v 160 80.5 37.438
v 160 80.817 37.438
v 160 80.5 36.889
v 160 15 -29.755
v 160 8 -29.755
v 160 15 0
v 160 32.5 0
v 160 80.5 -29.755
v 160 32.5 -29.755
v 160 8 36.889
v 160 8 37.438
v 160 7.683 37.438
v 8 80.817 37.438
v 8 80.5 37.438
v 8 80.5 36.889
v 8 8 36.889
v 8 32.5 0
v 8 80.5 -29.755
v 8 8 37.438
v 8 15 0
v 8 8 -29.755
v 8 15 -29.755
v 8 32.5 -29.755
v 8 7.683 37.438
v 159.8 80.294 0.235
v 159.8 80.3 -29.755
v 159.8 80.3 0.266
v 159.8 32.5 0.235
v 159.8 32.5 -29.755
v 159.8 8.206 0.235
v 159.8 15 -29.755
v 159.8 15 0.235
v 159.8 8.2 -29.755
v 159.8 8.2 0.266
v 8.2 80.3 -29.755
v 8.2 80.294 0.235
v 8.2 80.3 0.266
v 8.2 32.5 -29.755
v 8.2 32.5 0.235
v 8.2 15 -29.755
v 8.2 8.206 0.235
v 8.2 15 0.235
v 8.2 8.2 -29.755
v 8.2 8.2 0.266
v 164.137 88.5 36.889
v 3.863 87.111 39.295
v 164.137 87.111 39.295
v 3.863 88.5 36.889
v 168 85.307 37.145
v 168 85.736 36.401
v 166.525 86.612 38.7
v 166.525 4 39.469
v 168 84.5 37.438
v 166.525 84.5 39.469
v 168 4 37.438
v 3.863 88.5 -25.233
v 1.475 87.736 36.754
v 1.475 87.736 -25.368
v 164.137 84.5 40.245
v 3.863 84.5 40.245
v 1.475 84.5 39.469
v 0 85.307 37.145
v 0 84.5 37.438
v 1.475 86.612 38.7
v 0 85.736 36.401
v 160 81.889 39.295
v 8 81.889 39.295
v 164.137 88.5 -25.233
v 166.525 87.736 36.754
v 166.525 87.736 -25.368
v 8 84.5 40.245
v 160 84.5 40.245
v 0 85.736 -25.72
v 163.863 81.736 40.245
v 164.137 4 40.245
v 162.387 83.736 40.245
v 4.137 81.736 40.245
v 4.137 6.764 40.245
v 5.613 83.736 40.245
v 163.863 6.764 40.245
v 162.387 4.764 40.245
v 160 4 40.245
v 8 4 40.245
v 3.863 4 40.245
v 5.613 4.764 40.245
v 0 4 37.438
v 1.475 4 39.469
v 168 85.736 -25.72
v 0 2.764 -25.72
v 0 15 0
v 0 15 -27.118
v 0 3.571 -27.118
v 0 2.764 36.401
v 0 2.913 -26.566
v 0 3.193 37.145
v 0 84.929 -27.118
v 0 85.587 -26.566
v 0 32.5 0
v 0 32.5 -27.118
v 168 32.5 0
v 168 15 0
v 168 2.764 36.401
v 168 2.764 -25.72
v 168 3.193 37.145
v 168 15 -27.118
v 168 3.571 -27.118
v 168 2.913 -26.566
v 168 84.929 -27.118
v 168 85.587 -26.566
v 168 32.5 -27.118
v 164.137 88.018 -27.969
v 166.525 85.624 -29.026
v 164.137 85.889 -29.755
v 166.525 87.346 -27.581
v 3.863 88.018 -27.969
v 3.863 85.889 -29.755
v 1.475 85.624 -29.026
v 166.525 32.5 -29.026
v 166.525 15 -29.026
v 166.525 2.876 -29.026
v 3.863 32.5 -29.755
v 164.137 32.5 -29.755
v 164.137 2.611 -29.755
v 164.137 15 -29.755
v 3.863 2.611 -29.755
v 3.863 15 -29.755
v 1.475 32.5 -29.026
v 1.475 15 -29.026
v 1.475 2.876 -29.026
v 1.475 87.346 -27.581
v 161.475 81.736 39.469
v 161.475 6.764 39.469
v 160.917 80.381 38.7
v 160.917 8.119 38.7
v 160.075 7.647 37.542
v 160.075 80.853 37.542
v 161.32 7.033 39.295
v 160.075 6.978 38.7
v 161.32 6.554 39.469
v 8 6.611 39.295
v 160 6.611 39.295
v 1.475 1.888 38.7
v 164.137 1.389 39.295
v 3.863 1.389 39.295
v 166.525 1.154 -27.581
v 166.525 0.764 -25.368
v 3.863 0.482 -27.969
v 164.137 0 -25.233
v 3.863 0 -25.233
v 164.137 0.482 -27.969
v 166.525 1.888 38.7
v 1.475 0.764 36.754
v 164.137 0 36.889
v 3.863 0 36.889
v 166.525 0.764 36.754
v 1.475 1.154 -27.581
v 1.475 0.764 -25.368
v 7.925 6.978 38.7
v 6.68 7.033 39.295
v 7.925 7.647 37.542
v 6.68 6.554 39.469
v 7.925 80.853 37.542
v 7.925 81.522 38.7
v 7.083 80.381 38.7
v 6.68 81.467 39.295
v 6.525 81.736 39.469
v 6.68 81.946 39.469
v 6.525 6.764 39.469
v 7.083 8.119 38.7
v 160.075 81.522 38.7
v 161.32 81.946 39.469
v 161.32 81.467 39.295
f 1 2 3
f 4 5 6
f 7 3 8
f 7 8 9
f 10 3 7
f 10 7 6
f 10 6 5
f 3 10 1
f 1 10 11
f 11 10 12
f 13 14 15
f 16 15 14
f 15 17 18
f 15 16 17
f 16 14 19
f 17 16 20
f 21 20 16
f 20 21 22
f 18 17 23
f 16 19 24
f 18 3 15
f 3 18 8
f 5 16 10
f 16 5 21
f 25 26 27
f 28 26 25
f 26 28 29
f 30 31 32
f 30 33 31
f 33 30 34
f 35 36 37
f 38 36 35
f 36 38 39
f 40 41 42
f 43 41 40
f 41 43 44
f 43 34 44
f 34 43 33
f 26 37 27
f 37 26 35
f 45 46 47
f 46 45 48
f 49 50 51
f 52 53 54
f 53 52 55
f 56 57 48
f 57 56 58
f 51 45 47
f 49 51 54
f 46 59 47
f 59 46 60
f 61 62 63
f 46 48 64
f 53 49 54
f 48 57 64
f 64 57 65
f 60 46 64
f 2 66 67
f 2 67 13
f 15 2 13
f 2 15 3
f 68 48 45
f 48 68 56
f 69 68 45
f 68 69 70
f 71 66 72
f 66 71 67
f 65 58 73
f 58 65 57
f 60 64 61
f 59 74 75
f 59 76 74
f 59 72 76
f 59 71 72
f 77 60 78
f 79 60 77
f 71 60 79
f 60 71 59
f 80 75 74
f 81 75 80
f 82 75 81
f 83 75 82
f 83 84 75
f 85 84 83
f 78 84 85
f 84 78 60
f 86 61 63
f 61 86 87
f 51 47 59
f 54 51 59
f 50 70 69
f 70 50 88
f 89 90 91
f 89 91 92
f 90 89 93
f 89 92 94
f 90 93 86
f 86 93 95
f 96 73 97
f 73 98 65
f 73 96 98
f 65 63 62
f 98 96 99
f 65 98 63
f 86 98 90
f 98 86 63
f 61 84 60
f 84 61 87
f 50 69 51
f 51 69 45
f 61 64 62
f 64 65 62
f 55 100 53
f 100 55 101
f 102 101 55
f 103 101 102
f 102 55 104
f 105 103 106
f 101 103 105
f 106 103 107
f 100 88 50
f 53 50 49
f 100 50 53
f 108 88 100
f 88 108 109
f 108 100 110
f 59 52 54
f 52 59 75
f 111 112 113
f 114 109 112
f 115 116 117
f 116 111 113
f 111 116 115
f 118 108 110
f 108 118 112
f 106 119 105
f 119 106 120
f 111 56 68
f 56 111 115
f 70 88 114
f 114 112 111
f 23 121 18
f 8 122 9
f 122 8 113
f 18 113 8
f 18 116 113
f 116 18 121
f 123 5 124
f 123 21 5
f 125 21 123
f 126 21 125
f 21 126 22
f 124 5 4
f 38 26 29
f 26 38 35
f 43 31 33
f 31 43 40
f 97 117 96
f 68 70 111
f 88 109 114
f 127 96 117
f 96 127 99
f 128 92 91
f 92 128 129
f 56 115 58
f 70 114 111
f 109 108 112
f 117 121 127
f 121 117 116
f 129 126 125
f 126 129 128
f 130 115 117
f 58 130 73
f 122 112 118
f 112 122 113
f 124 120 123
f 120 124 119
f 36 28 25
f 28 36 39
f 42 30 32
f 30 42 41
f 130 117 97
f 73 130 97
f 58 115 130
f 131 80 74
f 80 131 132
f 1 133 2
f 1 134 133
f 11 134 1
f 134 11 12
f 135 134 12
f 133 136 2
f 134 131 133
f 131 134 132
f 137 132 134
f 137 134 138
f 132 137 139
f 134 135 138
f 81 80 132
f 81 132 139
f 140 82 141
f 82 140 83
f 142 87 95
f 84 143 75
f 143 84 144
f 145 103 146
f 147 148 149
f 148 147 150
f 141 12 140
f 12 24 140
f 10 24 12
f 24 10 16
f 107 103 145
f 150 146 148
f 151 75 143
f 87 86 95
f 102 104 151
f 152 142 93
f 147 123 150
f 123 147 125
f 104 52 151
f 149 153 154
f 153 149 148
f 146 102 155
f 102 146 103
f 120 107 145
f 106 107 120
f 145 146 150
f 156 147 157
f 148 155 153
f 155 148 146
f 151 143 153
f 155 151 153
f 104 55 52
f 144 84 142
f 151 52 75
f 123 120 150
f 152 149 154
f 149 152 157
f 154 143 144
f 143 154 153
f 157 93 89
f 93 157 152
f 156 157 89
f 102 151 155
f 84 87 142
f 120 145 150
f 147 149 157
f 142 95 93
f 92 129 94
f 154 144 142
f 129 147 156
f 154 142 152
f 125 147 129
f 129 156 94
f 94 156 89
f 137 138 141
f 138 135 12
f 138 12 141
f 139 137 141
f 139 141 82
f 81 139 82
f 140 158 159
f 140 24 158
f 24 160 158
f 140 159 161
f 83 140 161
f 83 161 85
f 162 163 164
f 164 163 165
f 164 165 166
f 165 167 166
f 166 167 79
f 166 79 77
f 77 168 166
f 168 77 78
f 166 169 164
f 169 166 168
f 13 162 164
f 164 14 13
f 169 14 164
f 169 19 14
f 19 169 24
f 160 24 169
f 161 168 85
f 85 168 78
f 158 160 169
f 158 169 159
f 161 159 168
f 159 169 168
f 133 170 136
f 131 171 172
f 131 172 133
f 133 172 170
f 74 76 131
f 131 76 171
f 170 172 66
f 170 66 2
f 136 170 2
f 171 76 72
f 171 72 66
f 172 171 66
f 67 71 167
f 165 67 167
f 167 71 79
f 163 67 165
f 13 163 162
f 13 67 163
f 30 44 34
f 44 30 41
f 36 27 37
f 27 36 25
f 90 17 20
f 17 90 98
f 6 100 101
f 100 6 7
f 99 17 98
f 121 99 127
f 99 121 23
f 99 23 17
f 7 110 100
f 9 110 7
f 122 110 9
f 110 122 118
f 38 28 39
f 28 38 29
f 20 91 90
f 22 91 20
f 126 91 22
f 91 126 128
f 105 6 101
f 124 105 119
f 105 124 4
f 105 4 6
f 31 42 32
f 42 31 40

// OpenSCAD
// file: ../chamferer.scad
INFINITY = 10000;
ATOM = .01;

module chamfer_tool(r, fn, tool,
                    ax, ay, az,
                    ax2, ay2, az2,
                    ax3, ay3, az3) {
    rotate([ax3, ay3, az3])
    rotate([ax2, ay2, az2])
    rotate([ax, ay, az]) {
        if (tool=="sphere") {
            sphere(r, $fn=fn);
        }
        else if (tool=="hemisphere-up") {
            intersection() {
                sphere(r, $fn=fn);
                cylinder(r=r*2, h=r*2);
            }
        }
        else if (tool=="hemisphere-down") {
            difference() {
                sphere(r, $fn=fn);
                cylinder(r=r*2, h=r*2);
            }
        }
        else if (tool=="cone") {
            cylinder(r, r, 0, $fn=fn);
            scale([1, 1, -1])
            cylinder(r, r, 0, $fn=fn);
        }
        else if (tool=="cone-up") {
            cylinder(r, r, 0, $fn=fn, center=true);
        }
        else if (tool=="cone-down") {
            scale([1, 1, -1])
            cylinder(r, r, 0, $fn=fn, center=true);
        }
        else if (tool=="octahedron") {
            resize([r*2, r*2, r*2]) {
                cylinder(r, r, 0, $fn=4);
                scale([1, 1, -1])
                cylinder(r, r, 0, $fn=4);
            }
        }
        else if (tool=="pyramid") {
            resize([r*2, r*2, r*2]) {
                cylinder(r, r, 0, center=true, $fn=4);
            }
        }
        else if (tool=="rpyramid") {
            resize([r*2, r*2, r*2]) {
                cylinder(r, 0, r, center=true, $fn=4);
            }
        }
        else if (tool=="cylinder-z" || tool=="cylinder") {
            cylinder(r=r, h=ATOM, $fn=fn, center=true);
        }
        else if (tool=="cylinder-x") {
            rotate([0, 90, 0])
            cylinder(r=r, h=ATOM, $fn=fn, center=true);
        }
        else if (tool=="cylinder-y") {
            rotate([90, 0, 0])
            cylinder(r=r, h=ATOM, $fn=fn, center=true);
        }
        else if (tool=="cube") {
            cube(r*2, center=true);
        }
        else if (tool=="plate-y") {
            cube([r*2, ATOM, r*2], center=true);
        }
        else {
            assert(false, str("Unknown tool: ", tool));
        }
    }
}

module shrinker(r, tool, fn,
                ax, ay, az,
                ax2, ay2, az2,
                ax3, ay3, az3) {
    if (!r) {
        children();
    }
    else {
        // re-invert+grow = fillet
        difference() {
            cube(INFINITY/2, center=true);

            // invert+grow = carve
            minkowski() {
                difference() {
                    cube(INFINITY, center=true);
                    children();
                }
                //cube(r, center=true);
                chamfer_tool(r, fn, tool,
                             ax, ay, az,
                             ax2, ay2, az2,
                             ax3, ay3, az3);
            }
        }
    }
}

module chamferer(r, tool="sphere", fn=8, shrink=true, grow=true,
                 ax=0, ay=0, az=0,
                 ax2=0, ay2=0, az2=0,
                 ax3=0, ay3=0, az3=0,
) {
    if (!r) {
        children();
    }
    else {
        minkowski() {
            if (shrink)
                shrinker(r, tool, fn,
                         ax, ay, az,
                         ax2, ay2, az2,
                         ax3, ay3, az3) children();
            else
                children();
            
            if (grow)
                chamfer_tool(r, fn, tool,
                             ax, ay, az,
                             ax2, ay2, az2,
                             ax3, ay3, az3);
        }
    }
}



cube(50);

translate([70, 0, 0])
chamferer(5, "hemisphere-up", $preview? 6*4 : 30)
//shrinker(5, "sphere", $preview? 6*4 : 30)
cube(50);

translate([70*2, 0, 0])
chamferer(5, "octahedron", grow=false)
cube(50);
// main file
use <../chamferer.scad>

INNER_L = 152;
INNER_W =  72.5;
INNER_H =  40;
TH      =  8;
GROOVE  = 17.5;
CLIP_H  = 30;
DY      = 15;

ATOM = 0.01;

module holder() {
    difference() {
        chamferer(/*$preview? 0 :*/ TH/1.9696165, fn=9, ay=90, ax2=180)
        difference() {
            union() {
                cube([INNER_L+TH*2, INNER_W+TH*2, INNER_H]);

                translate([0, 0, -CLIP_H])
                cube([INNER_L+TH*2, INNER_W+TH*2, CLIP_H]);
            }

            translate([TH, TH, -ATOM])
            cube([INNER_L, INNER_W, INNER_H + CLIP_H + ATOM*2]);
        }

        translate([-TH, DY, -CLIP_H-ATOM])
        cube([INNER_L+TH*4, GROOVE, CLIP_H+ATOM]);

        translate([TH, DY, -CLIP_H-ATOM])
        cube([INNER_L, GROOVE, CLIP_H*2]);

        // reinforcement crack
        difference() {
            translate([TH, TH, -CLIP_H-ATOM])
            cube([INNER_L, INNER_W, INNER_H + CLIP_H + ATOM*2]);

            chamferer(.2, "cube", grow=false)
            translate([TH, TH, -CLIP_H*1.5])
            cube([INNER_L, INNER_W, INNER_H + CLIP_H *2]);
        }
    }

}

//%translate([TH, TH, 0]) cube([INNER_L, INNER_W, INNER_H]);

holder();
